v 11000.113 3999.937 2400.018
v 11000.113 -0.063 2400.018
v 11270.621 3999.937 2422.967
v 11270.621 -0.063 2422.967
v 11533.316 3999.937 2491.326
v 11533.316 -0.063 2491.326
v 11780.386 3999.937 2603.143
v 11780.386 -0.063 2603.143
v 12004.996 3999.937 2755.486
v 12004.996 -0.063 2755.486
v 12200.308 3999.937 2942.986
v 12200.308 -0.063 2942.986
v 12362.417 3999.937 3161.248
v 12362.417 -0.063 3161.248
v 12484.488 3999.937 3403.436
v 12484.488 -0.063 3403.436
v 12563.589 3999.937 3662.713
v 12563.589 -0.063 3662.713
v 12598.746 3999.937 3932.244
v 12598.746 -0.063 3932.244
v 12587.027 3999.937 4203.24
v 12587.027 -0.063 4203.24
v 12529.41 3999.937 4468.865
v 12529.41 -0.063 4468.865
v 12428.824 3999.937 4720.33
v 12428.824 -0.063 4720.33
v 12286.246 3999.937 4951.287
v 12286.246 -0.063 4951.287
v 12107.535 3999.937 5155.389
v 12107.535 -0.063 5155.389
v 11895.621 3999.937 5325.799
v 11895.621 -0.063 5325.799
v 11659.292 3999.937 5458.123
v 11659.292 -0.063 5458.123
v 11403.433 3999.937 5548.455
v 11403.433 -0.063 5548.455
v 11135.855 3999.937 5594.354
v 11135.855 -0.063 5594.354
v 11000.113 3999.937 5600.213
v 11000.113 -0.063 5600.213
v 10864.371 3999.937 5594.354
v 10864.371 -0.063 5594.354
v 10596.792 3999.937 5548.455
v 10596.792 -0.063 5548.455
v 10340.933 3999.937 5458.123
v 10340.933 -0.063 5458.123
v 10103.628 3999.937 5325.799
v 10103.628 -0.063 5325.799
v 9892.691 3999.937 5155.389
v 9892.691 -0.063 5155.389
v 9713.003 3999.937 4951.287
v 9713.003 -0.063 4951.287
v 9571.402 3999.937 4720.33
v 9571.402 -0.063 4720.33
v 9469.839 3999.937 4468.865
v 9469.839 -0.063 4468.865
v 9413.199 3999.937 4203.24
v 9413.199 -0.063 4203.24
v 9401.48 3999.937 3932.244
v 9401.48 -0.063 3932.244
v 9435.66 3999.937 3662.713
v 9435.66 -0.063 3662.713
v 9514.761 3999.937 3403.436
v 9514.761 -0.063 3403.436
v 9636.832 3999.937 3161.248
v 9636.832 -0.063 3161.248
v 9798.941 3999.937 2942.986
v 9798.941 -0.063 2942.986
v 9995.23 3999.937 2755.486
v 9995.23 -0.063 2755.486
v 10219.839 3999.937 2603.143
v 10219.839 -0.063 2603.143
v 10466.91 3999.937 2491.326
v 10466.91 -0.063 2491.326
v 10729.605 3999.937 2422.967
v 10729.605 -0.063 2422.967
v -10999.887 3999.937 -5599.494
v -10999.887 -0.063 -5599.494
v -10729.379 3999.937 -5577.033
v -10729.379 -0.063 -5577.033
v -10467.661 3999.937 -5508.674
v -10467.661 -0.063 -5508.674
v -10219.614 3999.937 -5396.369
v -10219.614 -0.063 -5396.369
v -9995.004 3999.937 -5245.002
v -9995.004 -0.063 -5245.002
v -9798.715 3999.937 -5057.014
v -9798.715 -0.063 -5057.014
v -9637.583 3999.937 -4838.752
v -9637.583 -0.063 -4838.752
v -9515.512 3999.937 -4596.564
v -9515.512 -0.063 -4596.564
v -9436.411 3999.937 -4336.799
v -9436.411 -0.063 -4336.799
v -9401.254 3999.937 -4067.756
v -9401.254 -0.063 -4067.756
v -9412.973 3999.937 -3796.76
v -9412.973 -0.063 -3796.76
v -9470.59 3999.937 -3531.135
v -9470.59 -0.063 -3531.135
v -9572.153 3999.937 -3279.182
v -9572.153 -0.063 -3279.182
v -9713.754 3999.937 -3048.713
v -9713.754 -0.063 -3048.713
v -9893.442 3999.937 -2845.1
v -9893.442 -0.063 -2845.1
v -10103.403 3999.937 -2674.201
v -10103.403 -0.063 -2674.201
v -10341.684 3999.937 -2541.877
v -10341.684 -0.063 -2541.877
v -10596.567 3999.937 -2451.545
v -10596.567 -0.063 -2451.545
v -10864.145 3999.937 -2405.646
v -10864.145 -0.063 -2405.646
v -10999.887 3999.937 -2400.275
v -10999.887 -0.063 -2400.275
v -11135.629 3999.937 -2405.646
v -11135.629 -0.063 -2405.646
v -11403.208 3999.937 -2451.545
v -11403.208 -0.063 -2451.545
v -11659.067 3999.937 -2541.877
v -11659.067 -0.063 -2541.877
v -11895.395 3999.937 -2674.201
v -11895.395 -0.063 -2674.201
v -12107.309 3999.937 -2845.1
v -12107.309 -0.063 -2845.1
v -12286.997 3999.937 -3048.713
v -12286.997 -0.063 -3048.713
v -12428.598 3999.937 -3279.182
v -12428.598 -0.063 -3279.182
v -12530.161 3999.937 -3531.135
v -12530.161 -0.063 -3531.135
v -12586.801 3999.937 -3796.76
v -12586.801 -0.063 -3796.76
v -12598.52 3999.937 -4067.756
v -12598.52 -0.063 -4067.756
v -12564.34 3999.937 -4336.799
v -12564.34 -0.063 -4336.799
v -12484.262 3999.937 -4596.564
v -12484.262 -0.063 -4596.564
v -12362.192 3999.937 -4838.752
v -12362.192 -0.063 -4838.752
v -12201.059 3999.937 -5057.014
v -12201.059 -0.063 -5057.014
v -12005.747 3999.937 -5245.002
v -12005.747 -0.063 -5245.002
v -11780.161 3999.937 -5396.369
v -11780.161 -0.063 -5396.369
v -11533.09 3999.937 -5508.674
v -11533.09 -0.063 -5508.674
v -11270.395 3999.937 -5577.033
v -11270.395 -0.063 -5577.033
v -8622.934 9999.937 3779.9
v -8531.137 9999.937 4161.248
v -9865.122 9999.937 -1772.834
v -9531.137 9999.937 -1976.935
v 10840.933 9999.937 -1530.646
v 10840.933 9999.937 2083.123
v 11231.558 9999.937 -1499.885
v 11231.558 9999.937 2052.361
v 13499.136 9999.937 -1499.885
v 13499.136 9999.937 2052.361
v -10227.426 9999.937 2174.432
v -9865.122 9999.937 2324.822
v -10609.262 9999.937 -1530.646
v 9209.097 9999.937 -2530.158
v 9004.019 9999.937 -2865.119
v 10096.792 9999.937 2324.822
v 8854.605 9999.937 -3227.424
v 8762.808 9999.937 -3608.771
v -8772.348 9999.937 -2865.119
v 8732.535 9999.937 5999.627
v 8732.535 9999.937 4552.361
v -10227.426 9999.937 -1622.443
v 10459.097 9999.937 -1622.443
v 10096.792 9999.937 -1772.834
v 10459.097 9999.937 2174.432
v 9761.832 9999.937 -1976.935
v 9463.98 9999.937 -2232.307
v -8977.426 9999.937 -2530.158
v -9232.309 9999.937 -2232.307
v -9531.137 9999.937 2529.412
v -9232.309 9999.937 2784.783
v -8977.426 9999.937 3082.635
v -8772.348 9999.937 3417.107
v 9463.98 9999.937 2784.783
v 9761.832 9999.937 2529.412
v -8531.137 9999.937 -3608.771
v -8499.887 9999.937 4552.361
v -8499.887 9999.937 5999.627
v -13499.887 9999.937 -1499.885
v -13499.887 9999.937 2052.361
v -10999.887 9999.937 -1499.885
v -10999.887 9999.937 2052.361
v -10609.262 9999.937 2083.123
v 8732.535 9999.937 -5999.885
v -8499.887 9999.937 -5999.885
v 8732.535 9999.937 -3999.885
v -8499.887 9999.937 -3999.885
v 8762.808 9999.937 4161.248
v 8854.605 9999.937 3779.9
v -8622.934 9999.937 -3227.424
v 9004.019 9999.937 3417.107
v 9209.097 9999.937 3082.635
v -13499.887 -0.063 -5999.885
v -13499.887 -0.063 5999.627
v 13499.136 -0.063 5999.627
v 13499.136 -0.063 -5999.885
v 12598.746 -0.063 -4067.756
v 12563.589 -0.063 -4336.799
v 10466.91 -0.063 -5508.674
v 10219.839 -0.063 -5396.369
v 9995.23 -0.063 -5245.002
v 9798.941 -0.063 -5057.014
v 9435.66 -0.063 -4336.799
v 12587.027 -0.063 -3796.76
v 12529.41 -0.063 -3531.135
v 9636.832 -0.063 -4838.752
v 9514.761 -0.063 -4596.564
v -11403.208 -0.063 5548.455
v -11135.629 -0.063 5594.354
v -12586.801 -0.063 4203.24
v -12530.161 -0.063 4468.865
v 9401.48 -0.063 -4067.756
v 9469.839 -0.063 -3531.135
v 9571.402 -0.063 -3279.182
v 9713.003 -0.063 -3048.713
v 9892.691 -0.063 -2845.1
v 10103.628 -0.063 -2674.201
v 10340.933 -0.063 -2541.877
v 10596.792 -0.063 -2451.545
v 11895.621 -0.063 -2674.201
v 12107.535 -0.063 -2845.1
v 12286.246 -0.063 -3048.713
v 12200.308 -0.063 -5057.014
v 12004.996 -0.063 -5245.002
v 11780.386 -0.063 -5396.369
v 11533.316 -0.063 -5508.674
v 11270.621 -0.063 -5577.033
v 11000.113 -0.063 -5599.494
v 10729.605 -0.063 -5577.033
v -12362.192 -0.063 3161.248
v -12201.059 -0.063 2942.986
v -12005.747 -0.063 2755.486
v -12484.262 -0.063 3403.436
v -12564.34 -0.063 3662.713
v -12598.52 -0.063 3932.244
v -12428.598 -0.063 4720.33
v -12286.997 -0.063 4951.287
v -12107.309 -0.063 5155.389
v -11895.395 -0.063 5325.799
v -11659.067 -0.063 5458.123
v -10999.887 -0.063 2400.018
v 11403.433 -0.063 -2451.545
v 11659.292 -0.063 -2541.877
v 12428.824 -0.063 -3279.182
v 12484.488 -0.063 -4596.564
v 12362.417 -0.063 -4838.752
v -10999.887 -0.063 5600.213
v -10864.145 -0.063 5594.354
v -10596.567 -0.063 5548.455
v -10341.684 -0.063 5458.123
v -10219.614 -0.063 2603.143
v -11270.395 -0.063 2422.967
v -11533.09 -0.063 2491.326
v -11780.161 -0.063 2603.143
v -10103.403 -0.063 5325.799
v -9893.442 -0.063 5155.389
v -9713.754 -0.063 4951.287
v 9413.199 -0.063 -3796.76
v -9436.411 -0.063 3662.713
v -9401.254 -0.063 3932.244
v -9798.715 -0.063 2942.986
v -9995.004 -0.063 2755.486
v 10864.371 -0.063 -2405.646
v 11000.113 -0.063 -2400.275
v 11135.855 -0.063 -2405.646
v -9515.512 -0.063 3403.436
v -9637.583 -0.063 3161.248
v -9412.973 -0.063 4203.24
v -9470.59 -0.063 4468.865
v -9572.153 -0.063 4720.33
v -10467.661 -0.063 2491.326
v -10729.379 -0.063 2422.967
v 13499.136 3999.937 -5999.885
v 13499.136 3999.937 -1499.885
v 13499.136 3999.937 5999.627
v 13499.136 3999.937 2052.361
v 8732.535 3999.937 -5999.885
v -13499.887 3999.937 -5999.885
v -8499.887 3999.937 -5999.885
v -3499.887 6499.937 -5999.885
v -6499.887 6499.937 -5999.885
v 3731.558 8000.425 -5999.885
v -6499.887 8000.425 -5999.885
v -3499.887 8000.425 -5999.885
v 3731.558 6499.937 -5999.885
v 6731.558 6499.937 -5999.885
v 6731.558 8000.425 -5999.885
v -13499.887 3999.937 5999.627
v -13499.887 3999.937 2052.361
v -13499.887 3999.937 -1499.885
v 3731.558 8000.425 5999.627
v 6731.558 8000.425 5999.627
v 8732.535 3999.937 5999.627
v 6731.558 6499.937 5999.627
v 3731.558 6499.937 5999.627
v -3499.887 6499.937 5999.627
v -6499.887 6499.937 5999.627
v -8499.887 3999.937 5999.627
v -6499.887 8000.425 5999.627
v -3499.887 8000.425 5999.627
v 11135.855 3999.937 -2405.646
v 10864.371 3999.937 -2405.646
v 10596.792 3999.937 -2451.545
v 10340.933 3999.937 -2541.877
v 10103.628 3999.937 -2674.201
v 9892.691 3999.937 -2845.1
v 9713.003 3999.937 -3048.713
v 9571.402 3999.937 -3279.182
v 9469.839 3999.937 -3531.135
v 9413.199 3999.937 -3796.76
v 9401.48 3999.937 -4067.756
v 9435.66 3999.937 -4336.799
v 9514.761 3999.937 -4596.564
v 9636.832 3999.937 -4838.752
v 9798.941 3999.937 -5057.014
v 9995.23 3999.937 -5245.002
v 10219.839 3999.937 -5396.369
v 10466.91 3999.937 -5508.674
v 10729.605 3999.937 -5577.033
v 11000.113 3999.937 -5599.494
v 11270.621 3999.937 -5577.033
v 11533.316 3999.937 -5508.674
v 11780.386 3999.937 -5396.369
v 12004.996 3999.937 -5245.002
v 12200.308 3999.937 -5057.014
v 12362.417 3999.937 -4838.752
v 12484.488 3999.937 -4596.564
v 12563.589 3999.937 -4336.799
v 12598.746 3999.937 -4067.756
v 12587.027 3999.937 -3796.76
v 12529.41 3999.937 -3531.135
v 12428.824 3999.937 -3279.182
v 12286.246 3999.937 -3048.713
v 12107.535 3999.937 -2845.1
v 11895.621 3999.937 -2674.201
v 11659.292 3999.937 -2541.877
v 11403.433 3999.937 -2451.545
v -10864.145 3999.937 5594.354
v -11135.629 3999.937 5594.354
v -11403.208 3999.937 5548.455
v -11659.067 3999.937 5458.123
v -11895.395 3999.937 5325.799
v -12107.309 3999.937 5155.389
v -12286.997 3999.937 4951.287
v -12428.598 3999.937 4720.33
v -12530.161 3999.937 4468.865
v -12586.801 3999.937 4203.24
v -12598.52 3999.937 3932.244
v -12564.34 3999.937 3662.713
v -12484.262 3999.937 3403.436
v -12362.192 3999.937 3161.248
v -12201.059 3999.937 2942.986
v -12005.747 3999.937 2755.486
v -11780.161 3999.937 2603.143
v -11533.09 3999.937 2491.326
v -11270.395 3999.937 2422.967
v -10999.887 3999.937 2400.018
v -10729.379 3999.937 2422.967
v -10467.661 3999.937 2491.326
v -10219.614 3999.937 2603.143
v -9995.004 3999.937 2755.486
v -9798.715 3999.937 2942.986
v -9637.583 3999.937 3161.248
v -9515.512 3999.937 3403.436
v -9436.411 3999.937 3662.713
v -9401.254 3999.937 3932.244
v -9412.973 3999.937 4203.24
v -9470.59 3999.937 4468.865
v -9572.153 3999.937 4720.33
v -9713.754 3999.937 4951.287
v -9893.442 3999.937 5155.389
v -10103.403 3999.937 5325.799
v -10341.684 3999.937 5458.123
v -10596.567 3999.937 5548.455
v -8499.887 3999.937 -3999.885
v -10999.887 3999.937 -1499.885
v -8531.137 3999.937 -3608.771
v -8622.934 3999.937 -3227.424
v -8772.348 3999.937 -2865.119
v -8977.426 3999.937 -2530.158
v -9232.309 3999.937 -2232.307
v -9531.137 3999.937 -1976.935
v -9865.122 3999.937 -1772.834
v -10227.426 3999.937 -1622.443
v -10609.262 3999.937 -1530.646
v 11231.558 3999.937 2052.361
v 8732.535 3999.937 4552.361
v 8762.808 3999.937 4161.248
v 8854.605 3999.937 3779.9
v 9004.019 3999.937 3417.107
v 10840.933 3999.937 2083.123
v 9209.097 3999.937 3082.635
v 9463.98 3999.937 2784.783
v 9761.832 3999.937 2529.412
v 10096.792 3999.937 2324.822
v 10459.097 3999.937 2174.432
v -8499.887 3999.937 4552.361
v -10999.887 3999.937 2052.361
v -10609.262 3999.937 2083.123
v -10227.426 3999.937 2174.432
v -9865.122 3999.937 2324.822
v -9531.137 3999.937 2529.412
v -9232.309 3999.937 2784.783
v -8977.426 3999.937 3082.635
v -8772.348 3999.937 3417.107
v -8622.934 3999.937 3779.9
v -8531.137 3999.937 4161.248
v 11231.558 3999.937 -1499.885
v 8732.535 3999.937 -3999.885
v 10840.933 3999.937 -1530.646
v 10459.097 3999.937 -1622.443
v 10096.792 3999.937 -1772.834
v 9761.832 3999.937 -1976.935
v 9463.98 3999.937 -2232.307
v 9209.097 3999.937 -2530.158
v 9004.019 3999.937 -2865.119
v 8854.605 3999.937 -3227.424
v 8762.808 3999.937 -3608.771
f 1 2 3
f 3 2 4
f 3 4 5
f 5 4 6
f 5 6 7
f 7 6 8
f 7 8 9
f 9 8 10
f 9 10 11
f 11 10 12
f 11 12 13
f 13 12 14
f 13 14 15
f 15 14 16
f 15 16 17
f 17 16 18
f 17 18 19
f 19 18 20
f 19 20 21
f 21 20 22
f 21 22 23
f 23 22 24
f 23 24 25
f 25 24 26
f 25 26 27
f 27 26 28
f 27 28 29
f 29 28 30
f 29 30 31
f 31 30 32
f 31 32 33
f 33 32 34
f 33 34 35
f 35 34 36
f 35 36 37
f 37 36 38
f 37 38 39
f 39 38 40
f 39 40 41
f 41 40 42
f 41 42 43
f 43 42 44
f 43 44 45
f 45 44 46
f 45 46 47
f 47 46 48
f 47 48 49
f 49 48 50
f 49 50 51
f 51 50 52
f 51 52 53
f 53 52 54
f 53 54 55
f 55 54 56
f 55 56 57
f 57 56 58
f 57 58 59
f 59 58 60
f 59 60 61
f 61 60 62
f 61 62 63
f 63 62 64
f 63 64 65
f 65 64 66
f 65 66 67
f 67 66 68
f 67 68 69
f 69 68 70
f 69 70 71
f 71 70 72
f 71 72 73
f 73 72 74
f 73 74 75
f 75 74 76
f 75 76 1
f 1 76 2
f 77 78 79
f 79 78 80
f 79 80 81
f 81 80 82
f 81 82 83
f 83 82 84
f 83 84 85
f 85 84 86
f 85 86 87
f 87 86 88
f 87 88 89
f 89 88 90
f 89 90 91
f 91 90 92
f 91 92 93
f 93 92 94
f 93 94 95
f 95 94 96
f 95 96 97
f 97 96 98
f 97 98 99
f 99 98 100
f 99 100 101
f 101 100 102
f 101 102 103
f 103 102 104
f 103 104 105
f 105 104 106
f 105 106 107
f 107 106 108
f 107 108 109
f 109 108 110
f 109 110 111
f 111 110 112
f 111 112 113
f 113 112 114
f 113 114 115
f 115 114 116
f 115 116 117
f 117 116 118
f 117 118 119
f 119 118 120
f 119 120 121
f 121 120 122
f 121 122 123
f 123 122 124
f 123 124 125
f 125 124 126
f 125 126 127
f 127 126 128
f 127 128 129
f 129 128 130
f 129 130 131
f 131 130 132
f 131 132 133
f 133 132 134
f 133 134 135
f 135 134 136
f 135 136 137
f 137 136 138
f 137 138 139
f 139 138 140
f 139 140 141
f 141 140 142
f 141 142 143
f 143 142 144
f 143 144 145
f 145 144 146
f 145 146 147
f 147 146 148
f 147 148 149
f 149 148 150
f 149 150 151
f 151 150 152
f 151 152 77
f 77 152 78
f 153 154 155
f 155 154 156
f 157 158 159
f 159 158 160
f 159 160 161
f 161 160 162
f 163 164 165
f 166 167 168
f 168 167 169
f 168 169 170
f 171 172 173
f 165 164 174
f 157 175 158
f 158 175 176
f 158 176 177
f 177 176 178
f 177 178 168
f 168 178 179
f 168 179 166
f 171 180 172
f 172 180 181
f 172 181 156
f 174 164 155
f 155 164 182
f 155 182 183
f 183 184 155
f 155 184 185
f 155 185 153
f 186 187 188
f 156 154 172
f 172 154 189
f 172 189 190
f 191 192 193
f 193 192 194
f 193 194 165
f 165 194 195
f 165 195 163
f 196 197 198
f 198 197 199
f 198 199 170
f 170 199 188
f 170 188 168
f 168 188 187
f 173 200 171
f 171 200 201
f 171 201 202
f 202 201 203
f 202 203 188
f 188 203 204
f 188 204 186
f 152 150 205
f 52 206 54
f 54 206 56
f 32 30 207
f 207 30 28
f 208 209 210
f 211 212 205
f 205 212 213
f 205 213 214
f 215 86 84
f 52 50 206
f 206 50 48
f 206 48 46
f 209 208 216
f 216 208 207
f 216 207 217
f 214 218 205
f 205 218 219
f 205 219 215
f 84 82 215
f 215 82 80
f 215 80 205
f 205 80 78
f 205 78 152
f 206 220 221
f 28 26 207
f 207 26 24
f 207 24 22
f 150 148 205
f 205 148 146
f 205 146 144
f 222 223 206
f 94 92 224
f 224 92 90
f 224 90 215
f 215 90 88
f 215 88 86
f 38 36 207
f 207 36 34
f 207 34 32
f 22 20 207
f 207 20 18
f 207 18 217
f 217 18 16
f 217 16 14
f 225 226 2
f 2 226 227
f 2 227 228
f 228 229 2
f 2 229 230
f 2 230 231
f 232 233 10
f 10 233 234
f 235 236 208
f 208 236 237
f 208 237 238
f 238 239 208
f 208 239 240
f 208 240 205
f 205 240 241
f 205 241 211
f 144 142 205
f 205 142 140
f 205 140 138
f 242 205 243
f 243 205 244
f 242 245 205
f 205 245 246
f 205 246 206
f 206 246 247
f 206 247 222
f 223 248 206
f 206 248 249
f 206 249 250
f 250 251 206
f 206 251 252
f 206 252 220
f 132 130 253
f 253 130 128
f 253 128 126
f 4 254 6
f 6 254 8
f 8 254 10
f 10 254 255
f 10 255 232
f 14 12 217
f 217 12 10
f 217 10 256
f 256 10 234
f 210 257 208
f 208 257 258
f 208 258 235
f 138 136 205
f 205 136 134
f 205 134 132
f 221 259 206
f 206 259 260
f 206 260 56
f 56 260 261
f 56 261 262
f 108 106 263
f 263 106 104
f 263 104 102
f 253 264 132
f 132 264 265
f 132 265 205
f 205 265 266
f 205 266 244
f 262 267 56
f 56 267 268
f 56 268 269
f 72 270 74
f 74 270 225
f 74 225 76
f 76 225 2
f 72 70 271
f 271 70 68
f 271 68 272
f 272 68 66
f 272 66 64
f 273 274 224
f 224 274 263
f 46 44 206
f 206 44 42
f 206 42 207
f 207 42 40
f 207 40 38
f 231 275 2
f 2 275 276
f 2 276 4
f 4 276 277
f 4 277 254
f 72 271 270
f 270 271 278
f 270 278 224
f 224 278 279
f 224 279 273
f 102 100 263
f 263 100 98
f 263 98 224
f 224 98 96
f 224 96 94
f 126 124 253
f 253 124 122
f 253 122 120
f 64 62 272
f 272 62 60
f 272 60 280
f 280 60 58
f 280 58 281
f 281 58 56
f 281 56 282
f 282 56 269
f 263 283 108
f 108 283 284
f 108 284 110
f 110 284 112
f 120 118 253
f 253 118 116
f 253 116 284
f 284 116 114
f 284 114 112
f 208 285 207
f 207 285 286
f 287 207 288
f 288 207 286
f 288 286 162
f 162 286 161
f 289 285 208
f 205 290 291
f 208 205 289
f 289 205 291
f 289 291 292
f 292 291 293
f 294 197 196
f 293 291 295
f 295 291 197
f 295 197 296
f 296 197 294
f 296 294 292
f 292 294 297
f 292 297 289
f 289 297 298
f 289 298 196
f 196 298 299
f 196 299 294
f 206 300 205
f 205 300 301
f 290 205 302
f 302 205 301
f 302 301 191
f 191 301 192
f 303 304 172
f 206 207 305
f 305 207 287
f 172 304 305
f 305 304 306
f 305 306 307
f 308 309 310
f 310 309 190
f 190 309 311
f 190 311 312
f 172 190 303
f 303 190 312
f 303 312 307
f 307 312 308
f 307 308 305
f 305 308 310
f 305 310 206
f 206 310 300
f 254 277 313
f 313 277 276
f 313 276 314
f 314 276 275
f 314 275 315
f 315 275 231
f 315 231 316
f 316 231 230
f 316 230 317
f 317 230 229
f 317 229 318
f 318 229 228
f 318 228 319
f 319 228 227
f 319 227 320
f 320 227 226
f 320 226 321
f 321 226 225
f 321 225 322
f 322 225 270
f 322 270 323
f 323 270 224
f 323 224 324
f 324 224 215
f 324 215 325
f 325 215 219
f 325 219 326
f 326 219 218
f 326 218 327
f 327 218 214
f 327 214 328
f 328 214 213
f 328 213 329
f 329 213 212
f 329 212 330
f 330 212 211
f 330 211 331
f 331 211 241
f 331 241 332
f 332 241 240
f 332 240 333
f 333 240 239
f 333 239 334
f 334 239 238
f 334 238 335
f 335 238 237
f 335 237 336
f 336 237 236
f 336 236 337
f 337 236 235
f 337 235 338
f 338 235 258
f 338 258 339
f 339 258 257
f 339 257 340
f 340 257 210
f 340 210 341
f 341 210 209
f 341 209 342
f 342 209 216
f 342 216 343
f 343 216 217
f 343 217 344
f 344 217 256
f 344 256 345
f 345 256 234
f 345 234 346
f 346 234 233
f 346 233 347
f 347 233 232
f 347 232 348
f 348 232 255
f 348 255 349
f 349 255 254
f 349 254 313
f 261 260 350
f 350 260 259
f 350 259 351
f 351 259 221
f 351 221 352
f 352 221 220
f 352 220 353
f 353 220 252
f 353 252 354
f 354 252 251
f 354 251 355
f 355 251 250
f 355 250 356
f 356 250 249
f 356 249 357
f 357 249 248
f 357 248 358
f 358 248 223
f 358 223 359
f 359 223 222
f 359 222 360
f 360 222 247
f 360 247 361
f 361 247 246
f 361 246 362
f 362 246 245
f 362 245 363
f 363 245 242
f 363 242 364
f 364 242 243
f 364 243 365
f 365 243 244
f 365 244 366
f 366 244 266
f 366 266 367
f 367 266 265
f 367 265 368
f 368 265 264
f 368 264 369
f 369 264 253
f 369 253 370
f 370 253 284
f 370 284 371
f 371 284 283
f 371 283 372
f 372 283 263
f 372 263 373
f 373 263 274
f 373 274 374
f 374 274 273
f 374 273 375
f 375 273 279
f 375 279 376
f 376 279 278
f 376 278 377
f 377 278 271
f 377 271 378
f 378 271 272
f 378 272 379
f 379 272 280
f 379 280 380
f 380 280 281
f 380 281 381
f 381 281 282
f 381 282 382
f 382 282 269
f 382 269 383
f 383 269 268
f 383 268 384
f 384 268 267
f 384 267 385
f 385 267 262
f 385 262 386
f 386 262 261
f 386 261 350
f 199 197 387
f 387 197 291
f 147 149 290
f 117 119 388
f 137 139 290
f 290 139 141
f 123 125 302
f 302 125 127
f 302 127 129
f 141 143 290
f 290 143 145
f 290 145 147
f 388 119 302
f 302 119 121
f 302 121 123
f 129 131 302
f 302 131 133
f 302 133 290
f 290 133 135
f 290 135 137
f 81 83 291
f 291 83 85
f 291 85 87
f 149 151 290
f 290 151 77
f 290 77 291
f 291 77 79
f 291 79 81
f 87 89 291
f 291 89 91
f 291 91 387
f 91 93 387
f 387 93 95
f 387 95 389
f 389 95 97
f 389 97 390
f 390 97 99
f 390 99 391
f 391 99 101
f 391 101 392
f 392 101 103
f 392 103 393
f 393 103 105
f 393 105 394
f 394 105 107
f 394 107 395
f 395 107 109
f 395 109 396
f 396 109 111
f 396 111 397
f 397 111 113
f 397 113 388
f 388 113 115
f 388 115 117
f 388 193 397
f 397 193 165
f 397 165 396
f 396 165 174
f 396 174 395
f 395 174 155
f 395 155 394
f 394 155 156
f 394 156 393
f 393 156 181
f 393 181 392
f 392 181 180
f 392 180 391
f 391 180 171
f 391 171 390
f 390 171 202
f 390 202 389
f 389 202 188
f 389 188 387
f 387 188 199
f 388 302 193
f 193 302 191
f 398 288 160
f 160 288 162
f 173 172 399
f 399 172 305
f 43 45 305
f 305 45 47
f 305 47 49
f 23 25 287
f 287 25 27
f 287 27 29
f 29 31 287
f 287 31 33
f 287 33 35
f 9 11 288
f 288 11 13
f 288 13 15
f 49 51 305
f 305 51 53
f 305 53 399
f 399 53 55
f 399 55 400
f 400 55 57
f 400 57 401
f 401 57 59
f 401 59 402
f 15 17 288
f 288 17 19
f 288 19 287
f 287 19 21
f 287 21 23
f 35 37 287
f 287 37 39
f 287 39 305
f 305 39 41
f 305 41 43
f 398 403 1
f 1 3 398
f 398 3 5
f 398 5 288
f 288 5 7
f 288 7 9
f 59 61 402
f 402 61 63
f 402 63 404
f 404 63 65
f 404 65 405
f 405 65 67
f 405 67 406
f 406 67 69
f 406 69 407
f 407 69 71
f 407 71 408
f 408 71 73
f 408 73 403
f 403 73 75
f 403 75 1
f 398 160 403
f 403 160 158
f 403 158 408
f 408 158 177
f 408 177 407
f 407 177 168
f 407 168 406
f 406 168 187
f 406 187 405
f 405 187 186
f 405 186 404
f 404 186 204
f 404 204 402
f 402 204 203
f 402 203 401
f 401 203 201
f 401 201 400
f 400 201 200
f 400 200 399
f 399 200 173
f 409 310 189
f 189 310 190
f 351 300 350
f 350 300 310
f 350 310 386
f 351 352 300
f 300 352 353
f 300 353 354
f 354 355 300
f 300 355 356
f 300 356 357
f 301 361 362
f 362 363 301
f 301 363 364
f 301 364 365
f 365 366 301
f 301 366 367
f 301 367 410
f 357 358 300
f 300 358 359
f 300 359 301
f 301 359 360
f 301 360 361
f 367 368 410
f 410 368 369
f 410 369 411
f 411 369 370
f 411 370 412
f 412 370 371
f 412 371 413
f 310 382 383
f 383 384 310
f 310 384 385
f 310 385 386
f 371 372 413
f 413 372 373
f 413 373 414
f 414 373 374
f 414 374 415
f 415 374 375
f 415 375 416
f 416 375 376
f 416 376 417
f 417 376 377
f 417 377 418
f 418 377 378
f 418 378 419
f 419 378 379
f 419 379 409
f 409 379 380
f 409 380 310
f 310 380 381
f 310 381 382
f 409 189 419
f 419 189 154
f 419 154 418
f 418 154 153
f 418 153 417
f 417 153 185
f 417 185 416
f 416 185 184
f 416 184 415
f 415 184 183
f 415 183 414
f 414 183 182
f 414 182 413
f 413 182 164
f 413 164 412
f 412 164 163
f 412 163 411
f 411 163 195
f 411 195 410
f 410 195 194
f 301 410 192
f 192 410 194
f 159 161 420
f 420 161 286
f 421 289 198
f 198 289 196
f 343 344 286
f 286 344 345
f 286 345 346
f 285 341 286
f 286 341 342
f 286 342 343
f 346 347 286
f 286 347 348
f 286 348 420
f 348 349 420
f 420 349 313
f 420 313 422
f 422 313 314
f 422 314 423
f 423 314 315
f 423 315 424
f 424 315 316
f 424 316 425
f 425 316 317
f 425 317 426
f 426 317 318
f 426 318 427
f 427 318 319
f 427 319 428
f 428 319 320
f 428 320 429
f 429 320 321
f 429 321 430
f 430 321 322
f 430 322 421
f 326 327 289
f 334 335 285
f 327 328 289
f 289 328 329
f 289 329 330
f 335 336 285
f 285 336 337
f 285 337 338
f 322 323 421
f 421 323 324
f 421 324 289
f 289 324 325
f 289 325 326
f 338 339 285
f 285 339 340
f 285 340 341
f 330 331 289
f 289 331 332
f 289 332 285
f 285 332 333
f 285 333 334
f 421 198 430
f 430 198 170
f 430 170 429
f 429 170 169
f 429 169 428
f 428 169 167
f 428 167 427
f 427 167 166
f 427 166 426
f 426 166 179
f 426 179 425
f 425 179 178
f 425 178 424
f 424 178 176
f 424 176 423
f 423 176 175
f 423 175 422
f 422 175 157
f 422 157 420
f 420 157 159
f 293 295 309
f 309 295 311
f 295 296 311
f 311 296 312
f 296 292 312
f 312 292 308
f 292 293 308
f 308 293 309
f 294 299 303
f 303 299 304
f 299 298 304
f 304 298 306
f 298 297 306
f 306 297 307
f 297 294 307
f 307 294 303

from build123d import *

# Parameters (mm, degrees)
SKETCH_1_W          = 27000
SKETCH_1_H          = 12000
SKETCH_1_R          = 1600
EXTRUDE_1_DEPTH     = 10000
CUT_EXTRUDE_3_DEPTH = 6000
SKETCH_5_W          = 3000
SKETCH_5_H          = 1500
CUT_EXTRUDE_4_DEPTH = 20646.822822063


with BuildPart() as part:
    # 草圖1 → 填料-伸長1 (new body)
    with BuildSketch(Plane(origin=(0, 0, 0), x_dir=(1, 0, 0), z_dir=(0, 1, 0))):
        Rectangle(SKETCH_1_W, SKETCH_1_H)
        with Locations(Location((-11000, 4000, 0), (0, 0, 270))):
            Circle(SKETCH_1_R, mode=Mode.SUBTRACT)
        with Locations(Location((11000, 4000, 0), (0, 0, 270))):
            Circle(SKETCH_1_R, mode=Mode.SUBTRACT)
        with Locations(Location((-11000, -4000, 0), (0, 0, 270))):
            Circle(SKETCH_1_R, mode=Mode.SUBTRACT)
        with Locations(Location((11000, -4000, 0), (0, 0, 270))):
            Circle(SKETCH_1_R, mode=Mode.SUBTRACT)
    extrude(amount=EXTRUDE_1_DEPTH)

    # 草圖3 → 除料-伸長3 (cut)
    with BuildSketch(Plane(origin=(0, 10000, 0), x_dir=(1, 0, 0), z_dir=(0, 1, 0))):
        with BuildLine():
            Line((-11000, 6500), (-13500, 6500))
            Line((-13500, 6500), (-13500, 4000))
            Line((-13500, 4000), (-13500, 1500))
            Line((-13500, 1500), (-11000, 1500))
            ThreePointArc((-11000, 1500), (-9232.233047034, 2232.233047034), (-8500, 4000))
            Line((-8500, 4000), (-8500, 6500))
            Line((-8500, 6500), (-11000, 6500))
        make_face()
        with BuildLine():
            Line((13731.794950486, 1500), (11231.794950486, 1500))
            ThreePointArc((11231.794950486, 1500), (9464.02799752, 2232.233047034), (8731.794950486, 4000))
            Line((8731.794950486, 4000), (8731.794950486, 6500))
            Line((8731.794950486, 6500), (11231.794950486, 6500))
            Line((11231.794950486, 6500), (13731.794950486, 6500))
            Line((13731.794950486, 6500), (13731.794950486, 4000))
            Line((13731.794950486, 4000), (13731.794950486, 1500))
        make_face()
        with BuildLine():
            Line((11231.794950486, -7052.117551123), (13731.794950486, -7052.117551123))
            Line((13731.794950486, -7052.117551123), (13731.794950486, -4552.117551123))
            Line((13731.794950486, -4552.117551123), (13731.794950486, -2052.117551123))
            Line((13731.794950486, -2052.117551123), (11231.794950486, -2052.117551123))
            ThreePointArc((11231.794950486, -2052.117551123), (9464.02799752, -2784.350598156), (8731.794950486, -4552.117551123))
            Line((8731.794950486, -4552.117551123), (8731.794950486, -7052.117551123))
            Line((8731.794950486, -7052.117551123), (11231.794950486, -7052.117551123))
        make_face()
        with BuildLine():
            Line((-13500, -2052.117551123), (-11000, -2052.117551123))
            ThreePointArc((-11000, -2052.117551123), (-9232.233047034, -2784.350598156), (-8500, -4552.117551123))
            Line((-8500, -4552.117551123), (-8500, -7052.117551123))
            Line((-8500, -7052.117551123), (-11000, -7052.117551123))
            Line((-11000, -7052.117551123), (-13500, -7052.117551123))
            Line((-13500, -7052.117551123), (-13500, -4552.117551123))
            Line((-13500, -4552.117551123), (-13500, -2052.117551123))
        make_face()
    extrude(amount=-CUT_EXTRUDE_3_DEPTH, mode=Mode.SUBTRACT)

    # 草圖5 → 除料-伸長4 (cut, through all)
    with BuildSketch(Plane.XY.offset(6000)):
        with Locations((-5000, 7250)):
            Rectangle(SKETCH_5_W, SKETCH_5_H)
        with Locations((5231.794950486, 7250)):
            Rectangle(SKETCH_5_W, SKETCH_5_H)
    extrude(amount=-CUT_EXTRUDE_4_DEPTH, mode=Mode.SUBTRACT)


solid = part.part
